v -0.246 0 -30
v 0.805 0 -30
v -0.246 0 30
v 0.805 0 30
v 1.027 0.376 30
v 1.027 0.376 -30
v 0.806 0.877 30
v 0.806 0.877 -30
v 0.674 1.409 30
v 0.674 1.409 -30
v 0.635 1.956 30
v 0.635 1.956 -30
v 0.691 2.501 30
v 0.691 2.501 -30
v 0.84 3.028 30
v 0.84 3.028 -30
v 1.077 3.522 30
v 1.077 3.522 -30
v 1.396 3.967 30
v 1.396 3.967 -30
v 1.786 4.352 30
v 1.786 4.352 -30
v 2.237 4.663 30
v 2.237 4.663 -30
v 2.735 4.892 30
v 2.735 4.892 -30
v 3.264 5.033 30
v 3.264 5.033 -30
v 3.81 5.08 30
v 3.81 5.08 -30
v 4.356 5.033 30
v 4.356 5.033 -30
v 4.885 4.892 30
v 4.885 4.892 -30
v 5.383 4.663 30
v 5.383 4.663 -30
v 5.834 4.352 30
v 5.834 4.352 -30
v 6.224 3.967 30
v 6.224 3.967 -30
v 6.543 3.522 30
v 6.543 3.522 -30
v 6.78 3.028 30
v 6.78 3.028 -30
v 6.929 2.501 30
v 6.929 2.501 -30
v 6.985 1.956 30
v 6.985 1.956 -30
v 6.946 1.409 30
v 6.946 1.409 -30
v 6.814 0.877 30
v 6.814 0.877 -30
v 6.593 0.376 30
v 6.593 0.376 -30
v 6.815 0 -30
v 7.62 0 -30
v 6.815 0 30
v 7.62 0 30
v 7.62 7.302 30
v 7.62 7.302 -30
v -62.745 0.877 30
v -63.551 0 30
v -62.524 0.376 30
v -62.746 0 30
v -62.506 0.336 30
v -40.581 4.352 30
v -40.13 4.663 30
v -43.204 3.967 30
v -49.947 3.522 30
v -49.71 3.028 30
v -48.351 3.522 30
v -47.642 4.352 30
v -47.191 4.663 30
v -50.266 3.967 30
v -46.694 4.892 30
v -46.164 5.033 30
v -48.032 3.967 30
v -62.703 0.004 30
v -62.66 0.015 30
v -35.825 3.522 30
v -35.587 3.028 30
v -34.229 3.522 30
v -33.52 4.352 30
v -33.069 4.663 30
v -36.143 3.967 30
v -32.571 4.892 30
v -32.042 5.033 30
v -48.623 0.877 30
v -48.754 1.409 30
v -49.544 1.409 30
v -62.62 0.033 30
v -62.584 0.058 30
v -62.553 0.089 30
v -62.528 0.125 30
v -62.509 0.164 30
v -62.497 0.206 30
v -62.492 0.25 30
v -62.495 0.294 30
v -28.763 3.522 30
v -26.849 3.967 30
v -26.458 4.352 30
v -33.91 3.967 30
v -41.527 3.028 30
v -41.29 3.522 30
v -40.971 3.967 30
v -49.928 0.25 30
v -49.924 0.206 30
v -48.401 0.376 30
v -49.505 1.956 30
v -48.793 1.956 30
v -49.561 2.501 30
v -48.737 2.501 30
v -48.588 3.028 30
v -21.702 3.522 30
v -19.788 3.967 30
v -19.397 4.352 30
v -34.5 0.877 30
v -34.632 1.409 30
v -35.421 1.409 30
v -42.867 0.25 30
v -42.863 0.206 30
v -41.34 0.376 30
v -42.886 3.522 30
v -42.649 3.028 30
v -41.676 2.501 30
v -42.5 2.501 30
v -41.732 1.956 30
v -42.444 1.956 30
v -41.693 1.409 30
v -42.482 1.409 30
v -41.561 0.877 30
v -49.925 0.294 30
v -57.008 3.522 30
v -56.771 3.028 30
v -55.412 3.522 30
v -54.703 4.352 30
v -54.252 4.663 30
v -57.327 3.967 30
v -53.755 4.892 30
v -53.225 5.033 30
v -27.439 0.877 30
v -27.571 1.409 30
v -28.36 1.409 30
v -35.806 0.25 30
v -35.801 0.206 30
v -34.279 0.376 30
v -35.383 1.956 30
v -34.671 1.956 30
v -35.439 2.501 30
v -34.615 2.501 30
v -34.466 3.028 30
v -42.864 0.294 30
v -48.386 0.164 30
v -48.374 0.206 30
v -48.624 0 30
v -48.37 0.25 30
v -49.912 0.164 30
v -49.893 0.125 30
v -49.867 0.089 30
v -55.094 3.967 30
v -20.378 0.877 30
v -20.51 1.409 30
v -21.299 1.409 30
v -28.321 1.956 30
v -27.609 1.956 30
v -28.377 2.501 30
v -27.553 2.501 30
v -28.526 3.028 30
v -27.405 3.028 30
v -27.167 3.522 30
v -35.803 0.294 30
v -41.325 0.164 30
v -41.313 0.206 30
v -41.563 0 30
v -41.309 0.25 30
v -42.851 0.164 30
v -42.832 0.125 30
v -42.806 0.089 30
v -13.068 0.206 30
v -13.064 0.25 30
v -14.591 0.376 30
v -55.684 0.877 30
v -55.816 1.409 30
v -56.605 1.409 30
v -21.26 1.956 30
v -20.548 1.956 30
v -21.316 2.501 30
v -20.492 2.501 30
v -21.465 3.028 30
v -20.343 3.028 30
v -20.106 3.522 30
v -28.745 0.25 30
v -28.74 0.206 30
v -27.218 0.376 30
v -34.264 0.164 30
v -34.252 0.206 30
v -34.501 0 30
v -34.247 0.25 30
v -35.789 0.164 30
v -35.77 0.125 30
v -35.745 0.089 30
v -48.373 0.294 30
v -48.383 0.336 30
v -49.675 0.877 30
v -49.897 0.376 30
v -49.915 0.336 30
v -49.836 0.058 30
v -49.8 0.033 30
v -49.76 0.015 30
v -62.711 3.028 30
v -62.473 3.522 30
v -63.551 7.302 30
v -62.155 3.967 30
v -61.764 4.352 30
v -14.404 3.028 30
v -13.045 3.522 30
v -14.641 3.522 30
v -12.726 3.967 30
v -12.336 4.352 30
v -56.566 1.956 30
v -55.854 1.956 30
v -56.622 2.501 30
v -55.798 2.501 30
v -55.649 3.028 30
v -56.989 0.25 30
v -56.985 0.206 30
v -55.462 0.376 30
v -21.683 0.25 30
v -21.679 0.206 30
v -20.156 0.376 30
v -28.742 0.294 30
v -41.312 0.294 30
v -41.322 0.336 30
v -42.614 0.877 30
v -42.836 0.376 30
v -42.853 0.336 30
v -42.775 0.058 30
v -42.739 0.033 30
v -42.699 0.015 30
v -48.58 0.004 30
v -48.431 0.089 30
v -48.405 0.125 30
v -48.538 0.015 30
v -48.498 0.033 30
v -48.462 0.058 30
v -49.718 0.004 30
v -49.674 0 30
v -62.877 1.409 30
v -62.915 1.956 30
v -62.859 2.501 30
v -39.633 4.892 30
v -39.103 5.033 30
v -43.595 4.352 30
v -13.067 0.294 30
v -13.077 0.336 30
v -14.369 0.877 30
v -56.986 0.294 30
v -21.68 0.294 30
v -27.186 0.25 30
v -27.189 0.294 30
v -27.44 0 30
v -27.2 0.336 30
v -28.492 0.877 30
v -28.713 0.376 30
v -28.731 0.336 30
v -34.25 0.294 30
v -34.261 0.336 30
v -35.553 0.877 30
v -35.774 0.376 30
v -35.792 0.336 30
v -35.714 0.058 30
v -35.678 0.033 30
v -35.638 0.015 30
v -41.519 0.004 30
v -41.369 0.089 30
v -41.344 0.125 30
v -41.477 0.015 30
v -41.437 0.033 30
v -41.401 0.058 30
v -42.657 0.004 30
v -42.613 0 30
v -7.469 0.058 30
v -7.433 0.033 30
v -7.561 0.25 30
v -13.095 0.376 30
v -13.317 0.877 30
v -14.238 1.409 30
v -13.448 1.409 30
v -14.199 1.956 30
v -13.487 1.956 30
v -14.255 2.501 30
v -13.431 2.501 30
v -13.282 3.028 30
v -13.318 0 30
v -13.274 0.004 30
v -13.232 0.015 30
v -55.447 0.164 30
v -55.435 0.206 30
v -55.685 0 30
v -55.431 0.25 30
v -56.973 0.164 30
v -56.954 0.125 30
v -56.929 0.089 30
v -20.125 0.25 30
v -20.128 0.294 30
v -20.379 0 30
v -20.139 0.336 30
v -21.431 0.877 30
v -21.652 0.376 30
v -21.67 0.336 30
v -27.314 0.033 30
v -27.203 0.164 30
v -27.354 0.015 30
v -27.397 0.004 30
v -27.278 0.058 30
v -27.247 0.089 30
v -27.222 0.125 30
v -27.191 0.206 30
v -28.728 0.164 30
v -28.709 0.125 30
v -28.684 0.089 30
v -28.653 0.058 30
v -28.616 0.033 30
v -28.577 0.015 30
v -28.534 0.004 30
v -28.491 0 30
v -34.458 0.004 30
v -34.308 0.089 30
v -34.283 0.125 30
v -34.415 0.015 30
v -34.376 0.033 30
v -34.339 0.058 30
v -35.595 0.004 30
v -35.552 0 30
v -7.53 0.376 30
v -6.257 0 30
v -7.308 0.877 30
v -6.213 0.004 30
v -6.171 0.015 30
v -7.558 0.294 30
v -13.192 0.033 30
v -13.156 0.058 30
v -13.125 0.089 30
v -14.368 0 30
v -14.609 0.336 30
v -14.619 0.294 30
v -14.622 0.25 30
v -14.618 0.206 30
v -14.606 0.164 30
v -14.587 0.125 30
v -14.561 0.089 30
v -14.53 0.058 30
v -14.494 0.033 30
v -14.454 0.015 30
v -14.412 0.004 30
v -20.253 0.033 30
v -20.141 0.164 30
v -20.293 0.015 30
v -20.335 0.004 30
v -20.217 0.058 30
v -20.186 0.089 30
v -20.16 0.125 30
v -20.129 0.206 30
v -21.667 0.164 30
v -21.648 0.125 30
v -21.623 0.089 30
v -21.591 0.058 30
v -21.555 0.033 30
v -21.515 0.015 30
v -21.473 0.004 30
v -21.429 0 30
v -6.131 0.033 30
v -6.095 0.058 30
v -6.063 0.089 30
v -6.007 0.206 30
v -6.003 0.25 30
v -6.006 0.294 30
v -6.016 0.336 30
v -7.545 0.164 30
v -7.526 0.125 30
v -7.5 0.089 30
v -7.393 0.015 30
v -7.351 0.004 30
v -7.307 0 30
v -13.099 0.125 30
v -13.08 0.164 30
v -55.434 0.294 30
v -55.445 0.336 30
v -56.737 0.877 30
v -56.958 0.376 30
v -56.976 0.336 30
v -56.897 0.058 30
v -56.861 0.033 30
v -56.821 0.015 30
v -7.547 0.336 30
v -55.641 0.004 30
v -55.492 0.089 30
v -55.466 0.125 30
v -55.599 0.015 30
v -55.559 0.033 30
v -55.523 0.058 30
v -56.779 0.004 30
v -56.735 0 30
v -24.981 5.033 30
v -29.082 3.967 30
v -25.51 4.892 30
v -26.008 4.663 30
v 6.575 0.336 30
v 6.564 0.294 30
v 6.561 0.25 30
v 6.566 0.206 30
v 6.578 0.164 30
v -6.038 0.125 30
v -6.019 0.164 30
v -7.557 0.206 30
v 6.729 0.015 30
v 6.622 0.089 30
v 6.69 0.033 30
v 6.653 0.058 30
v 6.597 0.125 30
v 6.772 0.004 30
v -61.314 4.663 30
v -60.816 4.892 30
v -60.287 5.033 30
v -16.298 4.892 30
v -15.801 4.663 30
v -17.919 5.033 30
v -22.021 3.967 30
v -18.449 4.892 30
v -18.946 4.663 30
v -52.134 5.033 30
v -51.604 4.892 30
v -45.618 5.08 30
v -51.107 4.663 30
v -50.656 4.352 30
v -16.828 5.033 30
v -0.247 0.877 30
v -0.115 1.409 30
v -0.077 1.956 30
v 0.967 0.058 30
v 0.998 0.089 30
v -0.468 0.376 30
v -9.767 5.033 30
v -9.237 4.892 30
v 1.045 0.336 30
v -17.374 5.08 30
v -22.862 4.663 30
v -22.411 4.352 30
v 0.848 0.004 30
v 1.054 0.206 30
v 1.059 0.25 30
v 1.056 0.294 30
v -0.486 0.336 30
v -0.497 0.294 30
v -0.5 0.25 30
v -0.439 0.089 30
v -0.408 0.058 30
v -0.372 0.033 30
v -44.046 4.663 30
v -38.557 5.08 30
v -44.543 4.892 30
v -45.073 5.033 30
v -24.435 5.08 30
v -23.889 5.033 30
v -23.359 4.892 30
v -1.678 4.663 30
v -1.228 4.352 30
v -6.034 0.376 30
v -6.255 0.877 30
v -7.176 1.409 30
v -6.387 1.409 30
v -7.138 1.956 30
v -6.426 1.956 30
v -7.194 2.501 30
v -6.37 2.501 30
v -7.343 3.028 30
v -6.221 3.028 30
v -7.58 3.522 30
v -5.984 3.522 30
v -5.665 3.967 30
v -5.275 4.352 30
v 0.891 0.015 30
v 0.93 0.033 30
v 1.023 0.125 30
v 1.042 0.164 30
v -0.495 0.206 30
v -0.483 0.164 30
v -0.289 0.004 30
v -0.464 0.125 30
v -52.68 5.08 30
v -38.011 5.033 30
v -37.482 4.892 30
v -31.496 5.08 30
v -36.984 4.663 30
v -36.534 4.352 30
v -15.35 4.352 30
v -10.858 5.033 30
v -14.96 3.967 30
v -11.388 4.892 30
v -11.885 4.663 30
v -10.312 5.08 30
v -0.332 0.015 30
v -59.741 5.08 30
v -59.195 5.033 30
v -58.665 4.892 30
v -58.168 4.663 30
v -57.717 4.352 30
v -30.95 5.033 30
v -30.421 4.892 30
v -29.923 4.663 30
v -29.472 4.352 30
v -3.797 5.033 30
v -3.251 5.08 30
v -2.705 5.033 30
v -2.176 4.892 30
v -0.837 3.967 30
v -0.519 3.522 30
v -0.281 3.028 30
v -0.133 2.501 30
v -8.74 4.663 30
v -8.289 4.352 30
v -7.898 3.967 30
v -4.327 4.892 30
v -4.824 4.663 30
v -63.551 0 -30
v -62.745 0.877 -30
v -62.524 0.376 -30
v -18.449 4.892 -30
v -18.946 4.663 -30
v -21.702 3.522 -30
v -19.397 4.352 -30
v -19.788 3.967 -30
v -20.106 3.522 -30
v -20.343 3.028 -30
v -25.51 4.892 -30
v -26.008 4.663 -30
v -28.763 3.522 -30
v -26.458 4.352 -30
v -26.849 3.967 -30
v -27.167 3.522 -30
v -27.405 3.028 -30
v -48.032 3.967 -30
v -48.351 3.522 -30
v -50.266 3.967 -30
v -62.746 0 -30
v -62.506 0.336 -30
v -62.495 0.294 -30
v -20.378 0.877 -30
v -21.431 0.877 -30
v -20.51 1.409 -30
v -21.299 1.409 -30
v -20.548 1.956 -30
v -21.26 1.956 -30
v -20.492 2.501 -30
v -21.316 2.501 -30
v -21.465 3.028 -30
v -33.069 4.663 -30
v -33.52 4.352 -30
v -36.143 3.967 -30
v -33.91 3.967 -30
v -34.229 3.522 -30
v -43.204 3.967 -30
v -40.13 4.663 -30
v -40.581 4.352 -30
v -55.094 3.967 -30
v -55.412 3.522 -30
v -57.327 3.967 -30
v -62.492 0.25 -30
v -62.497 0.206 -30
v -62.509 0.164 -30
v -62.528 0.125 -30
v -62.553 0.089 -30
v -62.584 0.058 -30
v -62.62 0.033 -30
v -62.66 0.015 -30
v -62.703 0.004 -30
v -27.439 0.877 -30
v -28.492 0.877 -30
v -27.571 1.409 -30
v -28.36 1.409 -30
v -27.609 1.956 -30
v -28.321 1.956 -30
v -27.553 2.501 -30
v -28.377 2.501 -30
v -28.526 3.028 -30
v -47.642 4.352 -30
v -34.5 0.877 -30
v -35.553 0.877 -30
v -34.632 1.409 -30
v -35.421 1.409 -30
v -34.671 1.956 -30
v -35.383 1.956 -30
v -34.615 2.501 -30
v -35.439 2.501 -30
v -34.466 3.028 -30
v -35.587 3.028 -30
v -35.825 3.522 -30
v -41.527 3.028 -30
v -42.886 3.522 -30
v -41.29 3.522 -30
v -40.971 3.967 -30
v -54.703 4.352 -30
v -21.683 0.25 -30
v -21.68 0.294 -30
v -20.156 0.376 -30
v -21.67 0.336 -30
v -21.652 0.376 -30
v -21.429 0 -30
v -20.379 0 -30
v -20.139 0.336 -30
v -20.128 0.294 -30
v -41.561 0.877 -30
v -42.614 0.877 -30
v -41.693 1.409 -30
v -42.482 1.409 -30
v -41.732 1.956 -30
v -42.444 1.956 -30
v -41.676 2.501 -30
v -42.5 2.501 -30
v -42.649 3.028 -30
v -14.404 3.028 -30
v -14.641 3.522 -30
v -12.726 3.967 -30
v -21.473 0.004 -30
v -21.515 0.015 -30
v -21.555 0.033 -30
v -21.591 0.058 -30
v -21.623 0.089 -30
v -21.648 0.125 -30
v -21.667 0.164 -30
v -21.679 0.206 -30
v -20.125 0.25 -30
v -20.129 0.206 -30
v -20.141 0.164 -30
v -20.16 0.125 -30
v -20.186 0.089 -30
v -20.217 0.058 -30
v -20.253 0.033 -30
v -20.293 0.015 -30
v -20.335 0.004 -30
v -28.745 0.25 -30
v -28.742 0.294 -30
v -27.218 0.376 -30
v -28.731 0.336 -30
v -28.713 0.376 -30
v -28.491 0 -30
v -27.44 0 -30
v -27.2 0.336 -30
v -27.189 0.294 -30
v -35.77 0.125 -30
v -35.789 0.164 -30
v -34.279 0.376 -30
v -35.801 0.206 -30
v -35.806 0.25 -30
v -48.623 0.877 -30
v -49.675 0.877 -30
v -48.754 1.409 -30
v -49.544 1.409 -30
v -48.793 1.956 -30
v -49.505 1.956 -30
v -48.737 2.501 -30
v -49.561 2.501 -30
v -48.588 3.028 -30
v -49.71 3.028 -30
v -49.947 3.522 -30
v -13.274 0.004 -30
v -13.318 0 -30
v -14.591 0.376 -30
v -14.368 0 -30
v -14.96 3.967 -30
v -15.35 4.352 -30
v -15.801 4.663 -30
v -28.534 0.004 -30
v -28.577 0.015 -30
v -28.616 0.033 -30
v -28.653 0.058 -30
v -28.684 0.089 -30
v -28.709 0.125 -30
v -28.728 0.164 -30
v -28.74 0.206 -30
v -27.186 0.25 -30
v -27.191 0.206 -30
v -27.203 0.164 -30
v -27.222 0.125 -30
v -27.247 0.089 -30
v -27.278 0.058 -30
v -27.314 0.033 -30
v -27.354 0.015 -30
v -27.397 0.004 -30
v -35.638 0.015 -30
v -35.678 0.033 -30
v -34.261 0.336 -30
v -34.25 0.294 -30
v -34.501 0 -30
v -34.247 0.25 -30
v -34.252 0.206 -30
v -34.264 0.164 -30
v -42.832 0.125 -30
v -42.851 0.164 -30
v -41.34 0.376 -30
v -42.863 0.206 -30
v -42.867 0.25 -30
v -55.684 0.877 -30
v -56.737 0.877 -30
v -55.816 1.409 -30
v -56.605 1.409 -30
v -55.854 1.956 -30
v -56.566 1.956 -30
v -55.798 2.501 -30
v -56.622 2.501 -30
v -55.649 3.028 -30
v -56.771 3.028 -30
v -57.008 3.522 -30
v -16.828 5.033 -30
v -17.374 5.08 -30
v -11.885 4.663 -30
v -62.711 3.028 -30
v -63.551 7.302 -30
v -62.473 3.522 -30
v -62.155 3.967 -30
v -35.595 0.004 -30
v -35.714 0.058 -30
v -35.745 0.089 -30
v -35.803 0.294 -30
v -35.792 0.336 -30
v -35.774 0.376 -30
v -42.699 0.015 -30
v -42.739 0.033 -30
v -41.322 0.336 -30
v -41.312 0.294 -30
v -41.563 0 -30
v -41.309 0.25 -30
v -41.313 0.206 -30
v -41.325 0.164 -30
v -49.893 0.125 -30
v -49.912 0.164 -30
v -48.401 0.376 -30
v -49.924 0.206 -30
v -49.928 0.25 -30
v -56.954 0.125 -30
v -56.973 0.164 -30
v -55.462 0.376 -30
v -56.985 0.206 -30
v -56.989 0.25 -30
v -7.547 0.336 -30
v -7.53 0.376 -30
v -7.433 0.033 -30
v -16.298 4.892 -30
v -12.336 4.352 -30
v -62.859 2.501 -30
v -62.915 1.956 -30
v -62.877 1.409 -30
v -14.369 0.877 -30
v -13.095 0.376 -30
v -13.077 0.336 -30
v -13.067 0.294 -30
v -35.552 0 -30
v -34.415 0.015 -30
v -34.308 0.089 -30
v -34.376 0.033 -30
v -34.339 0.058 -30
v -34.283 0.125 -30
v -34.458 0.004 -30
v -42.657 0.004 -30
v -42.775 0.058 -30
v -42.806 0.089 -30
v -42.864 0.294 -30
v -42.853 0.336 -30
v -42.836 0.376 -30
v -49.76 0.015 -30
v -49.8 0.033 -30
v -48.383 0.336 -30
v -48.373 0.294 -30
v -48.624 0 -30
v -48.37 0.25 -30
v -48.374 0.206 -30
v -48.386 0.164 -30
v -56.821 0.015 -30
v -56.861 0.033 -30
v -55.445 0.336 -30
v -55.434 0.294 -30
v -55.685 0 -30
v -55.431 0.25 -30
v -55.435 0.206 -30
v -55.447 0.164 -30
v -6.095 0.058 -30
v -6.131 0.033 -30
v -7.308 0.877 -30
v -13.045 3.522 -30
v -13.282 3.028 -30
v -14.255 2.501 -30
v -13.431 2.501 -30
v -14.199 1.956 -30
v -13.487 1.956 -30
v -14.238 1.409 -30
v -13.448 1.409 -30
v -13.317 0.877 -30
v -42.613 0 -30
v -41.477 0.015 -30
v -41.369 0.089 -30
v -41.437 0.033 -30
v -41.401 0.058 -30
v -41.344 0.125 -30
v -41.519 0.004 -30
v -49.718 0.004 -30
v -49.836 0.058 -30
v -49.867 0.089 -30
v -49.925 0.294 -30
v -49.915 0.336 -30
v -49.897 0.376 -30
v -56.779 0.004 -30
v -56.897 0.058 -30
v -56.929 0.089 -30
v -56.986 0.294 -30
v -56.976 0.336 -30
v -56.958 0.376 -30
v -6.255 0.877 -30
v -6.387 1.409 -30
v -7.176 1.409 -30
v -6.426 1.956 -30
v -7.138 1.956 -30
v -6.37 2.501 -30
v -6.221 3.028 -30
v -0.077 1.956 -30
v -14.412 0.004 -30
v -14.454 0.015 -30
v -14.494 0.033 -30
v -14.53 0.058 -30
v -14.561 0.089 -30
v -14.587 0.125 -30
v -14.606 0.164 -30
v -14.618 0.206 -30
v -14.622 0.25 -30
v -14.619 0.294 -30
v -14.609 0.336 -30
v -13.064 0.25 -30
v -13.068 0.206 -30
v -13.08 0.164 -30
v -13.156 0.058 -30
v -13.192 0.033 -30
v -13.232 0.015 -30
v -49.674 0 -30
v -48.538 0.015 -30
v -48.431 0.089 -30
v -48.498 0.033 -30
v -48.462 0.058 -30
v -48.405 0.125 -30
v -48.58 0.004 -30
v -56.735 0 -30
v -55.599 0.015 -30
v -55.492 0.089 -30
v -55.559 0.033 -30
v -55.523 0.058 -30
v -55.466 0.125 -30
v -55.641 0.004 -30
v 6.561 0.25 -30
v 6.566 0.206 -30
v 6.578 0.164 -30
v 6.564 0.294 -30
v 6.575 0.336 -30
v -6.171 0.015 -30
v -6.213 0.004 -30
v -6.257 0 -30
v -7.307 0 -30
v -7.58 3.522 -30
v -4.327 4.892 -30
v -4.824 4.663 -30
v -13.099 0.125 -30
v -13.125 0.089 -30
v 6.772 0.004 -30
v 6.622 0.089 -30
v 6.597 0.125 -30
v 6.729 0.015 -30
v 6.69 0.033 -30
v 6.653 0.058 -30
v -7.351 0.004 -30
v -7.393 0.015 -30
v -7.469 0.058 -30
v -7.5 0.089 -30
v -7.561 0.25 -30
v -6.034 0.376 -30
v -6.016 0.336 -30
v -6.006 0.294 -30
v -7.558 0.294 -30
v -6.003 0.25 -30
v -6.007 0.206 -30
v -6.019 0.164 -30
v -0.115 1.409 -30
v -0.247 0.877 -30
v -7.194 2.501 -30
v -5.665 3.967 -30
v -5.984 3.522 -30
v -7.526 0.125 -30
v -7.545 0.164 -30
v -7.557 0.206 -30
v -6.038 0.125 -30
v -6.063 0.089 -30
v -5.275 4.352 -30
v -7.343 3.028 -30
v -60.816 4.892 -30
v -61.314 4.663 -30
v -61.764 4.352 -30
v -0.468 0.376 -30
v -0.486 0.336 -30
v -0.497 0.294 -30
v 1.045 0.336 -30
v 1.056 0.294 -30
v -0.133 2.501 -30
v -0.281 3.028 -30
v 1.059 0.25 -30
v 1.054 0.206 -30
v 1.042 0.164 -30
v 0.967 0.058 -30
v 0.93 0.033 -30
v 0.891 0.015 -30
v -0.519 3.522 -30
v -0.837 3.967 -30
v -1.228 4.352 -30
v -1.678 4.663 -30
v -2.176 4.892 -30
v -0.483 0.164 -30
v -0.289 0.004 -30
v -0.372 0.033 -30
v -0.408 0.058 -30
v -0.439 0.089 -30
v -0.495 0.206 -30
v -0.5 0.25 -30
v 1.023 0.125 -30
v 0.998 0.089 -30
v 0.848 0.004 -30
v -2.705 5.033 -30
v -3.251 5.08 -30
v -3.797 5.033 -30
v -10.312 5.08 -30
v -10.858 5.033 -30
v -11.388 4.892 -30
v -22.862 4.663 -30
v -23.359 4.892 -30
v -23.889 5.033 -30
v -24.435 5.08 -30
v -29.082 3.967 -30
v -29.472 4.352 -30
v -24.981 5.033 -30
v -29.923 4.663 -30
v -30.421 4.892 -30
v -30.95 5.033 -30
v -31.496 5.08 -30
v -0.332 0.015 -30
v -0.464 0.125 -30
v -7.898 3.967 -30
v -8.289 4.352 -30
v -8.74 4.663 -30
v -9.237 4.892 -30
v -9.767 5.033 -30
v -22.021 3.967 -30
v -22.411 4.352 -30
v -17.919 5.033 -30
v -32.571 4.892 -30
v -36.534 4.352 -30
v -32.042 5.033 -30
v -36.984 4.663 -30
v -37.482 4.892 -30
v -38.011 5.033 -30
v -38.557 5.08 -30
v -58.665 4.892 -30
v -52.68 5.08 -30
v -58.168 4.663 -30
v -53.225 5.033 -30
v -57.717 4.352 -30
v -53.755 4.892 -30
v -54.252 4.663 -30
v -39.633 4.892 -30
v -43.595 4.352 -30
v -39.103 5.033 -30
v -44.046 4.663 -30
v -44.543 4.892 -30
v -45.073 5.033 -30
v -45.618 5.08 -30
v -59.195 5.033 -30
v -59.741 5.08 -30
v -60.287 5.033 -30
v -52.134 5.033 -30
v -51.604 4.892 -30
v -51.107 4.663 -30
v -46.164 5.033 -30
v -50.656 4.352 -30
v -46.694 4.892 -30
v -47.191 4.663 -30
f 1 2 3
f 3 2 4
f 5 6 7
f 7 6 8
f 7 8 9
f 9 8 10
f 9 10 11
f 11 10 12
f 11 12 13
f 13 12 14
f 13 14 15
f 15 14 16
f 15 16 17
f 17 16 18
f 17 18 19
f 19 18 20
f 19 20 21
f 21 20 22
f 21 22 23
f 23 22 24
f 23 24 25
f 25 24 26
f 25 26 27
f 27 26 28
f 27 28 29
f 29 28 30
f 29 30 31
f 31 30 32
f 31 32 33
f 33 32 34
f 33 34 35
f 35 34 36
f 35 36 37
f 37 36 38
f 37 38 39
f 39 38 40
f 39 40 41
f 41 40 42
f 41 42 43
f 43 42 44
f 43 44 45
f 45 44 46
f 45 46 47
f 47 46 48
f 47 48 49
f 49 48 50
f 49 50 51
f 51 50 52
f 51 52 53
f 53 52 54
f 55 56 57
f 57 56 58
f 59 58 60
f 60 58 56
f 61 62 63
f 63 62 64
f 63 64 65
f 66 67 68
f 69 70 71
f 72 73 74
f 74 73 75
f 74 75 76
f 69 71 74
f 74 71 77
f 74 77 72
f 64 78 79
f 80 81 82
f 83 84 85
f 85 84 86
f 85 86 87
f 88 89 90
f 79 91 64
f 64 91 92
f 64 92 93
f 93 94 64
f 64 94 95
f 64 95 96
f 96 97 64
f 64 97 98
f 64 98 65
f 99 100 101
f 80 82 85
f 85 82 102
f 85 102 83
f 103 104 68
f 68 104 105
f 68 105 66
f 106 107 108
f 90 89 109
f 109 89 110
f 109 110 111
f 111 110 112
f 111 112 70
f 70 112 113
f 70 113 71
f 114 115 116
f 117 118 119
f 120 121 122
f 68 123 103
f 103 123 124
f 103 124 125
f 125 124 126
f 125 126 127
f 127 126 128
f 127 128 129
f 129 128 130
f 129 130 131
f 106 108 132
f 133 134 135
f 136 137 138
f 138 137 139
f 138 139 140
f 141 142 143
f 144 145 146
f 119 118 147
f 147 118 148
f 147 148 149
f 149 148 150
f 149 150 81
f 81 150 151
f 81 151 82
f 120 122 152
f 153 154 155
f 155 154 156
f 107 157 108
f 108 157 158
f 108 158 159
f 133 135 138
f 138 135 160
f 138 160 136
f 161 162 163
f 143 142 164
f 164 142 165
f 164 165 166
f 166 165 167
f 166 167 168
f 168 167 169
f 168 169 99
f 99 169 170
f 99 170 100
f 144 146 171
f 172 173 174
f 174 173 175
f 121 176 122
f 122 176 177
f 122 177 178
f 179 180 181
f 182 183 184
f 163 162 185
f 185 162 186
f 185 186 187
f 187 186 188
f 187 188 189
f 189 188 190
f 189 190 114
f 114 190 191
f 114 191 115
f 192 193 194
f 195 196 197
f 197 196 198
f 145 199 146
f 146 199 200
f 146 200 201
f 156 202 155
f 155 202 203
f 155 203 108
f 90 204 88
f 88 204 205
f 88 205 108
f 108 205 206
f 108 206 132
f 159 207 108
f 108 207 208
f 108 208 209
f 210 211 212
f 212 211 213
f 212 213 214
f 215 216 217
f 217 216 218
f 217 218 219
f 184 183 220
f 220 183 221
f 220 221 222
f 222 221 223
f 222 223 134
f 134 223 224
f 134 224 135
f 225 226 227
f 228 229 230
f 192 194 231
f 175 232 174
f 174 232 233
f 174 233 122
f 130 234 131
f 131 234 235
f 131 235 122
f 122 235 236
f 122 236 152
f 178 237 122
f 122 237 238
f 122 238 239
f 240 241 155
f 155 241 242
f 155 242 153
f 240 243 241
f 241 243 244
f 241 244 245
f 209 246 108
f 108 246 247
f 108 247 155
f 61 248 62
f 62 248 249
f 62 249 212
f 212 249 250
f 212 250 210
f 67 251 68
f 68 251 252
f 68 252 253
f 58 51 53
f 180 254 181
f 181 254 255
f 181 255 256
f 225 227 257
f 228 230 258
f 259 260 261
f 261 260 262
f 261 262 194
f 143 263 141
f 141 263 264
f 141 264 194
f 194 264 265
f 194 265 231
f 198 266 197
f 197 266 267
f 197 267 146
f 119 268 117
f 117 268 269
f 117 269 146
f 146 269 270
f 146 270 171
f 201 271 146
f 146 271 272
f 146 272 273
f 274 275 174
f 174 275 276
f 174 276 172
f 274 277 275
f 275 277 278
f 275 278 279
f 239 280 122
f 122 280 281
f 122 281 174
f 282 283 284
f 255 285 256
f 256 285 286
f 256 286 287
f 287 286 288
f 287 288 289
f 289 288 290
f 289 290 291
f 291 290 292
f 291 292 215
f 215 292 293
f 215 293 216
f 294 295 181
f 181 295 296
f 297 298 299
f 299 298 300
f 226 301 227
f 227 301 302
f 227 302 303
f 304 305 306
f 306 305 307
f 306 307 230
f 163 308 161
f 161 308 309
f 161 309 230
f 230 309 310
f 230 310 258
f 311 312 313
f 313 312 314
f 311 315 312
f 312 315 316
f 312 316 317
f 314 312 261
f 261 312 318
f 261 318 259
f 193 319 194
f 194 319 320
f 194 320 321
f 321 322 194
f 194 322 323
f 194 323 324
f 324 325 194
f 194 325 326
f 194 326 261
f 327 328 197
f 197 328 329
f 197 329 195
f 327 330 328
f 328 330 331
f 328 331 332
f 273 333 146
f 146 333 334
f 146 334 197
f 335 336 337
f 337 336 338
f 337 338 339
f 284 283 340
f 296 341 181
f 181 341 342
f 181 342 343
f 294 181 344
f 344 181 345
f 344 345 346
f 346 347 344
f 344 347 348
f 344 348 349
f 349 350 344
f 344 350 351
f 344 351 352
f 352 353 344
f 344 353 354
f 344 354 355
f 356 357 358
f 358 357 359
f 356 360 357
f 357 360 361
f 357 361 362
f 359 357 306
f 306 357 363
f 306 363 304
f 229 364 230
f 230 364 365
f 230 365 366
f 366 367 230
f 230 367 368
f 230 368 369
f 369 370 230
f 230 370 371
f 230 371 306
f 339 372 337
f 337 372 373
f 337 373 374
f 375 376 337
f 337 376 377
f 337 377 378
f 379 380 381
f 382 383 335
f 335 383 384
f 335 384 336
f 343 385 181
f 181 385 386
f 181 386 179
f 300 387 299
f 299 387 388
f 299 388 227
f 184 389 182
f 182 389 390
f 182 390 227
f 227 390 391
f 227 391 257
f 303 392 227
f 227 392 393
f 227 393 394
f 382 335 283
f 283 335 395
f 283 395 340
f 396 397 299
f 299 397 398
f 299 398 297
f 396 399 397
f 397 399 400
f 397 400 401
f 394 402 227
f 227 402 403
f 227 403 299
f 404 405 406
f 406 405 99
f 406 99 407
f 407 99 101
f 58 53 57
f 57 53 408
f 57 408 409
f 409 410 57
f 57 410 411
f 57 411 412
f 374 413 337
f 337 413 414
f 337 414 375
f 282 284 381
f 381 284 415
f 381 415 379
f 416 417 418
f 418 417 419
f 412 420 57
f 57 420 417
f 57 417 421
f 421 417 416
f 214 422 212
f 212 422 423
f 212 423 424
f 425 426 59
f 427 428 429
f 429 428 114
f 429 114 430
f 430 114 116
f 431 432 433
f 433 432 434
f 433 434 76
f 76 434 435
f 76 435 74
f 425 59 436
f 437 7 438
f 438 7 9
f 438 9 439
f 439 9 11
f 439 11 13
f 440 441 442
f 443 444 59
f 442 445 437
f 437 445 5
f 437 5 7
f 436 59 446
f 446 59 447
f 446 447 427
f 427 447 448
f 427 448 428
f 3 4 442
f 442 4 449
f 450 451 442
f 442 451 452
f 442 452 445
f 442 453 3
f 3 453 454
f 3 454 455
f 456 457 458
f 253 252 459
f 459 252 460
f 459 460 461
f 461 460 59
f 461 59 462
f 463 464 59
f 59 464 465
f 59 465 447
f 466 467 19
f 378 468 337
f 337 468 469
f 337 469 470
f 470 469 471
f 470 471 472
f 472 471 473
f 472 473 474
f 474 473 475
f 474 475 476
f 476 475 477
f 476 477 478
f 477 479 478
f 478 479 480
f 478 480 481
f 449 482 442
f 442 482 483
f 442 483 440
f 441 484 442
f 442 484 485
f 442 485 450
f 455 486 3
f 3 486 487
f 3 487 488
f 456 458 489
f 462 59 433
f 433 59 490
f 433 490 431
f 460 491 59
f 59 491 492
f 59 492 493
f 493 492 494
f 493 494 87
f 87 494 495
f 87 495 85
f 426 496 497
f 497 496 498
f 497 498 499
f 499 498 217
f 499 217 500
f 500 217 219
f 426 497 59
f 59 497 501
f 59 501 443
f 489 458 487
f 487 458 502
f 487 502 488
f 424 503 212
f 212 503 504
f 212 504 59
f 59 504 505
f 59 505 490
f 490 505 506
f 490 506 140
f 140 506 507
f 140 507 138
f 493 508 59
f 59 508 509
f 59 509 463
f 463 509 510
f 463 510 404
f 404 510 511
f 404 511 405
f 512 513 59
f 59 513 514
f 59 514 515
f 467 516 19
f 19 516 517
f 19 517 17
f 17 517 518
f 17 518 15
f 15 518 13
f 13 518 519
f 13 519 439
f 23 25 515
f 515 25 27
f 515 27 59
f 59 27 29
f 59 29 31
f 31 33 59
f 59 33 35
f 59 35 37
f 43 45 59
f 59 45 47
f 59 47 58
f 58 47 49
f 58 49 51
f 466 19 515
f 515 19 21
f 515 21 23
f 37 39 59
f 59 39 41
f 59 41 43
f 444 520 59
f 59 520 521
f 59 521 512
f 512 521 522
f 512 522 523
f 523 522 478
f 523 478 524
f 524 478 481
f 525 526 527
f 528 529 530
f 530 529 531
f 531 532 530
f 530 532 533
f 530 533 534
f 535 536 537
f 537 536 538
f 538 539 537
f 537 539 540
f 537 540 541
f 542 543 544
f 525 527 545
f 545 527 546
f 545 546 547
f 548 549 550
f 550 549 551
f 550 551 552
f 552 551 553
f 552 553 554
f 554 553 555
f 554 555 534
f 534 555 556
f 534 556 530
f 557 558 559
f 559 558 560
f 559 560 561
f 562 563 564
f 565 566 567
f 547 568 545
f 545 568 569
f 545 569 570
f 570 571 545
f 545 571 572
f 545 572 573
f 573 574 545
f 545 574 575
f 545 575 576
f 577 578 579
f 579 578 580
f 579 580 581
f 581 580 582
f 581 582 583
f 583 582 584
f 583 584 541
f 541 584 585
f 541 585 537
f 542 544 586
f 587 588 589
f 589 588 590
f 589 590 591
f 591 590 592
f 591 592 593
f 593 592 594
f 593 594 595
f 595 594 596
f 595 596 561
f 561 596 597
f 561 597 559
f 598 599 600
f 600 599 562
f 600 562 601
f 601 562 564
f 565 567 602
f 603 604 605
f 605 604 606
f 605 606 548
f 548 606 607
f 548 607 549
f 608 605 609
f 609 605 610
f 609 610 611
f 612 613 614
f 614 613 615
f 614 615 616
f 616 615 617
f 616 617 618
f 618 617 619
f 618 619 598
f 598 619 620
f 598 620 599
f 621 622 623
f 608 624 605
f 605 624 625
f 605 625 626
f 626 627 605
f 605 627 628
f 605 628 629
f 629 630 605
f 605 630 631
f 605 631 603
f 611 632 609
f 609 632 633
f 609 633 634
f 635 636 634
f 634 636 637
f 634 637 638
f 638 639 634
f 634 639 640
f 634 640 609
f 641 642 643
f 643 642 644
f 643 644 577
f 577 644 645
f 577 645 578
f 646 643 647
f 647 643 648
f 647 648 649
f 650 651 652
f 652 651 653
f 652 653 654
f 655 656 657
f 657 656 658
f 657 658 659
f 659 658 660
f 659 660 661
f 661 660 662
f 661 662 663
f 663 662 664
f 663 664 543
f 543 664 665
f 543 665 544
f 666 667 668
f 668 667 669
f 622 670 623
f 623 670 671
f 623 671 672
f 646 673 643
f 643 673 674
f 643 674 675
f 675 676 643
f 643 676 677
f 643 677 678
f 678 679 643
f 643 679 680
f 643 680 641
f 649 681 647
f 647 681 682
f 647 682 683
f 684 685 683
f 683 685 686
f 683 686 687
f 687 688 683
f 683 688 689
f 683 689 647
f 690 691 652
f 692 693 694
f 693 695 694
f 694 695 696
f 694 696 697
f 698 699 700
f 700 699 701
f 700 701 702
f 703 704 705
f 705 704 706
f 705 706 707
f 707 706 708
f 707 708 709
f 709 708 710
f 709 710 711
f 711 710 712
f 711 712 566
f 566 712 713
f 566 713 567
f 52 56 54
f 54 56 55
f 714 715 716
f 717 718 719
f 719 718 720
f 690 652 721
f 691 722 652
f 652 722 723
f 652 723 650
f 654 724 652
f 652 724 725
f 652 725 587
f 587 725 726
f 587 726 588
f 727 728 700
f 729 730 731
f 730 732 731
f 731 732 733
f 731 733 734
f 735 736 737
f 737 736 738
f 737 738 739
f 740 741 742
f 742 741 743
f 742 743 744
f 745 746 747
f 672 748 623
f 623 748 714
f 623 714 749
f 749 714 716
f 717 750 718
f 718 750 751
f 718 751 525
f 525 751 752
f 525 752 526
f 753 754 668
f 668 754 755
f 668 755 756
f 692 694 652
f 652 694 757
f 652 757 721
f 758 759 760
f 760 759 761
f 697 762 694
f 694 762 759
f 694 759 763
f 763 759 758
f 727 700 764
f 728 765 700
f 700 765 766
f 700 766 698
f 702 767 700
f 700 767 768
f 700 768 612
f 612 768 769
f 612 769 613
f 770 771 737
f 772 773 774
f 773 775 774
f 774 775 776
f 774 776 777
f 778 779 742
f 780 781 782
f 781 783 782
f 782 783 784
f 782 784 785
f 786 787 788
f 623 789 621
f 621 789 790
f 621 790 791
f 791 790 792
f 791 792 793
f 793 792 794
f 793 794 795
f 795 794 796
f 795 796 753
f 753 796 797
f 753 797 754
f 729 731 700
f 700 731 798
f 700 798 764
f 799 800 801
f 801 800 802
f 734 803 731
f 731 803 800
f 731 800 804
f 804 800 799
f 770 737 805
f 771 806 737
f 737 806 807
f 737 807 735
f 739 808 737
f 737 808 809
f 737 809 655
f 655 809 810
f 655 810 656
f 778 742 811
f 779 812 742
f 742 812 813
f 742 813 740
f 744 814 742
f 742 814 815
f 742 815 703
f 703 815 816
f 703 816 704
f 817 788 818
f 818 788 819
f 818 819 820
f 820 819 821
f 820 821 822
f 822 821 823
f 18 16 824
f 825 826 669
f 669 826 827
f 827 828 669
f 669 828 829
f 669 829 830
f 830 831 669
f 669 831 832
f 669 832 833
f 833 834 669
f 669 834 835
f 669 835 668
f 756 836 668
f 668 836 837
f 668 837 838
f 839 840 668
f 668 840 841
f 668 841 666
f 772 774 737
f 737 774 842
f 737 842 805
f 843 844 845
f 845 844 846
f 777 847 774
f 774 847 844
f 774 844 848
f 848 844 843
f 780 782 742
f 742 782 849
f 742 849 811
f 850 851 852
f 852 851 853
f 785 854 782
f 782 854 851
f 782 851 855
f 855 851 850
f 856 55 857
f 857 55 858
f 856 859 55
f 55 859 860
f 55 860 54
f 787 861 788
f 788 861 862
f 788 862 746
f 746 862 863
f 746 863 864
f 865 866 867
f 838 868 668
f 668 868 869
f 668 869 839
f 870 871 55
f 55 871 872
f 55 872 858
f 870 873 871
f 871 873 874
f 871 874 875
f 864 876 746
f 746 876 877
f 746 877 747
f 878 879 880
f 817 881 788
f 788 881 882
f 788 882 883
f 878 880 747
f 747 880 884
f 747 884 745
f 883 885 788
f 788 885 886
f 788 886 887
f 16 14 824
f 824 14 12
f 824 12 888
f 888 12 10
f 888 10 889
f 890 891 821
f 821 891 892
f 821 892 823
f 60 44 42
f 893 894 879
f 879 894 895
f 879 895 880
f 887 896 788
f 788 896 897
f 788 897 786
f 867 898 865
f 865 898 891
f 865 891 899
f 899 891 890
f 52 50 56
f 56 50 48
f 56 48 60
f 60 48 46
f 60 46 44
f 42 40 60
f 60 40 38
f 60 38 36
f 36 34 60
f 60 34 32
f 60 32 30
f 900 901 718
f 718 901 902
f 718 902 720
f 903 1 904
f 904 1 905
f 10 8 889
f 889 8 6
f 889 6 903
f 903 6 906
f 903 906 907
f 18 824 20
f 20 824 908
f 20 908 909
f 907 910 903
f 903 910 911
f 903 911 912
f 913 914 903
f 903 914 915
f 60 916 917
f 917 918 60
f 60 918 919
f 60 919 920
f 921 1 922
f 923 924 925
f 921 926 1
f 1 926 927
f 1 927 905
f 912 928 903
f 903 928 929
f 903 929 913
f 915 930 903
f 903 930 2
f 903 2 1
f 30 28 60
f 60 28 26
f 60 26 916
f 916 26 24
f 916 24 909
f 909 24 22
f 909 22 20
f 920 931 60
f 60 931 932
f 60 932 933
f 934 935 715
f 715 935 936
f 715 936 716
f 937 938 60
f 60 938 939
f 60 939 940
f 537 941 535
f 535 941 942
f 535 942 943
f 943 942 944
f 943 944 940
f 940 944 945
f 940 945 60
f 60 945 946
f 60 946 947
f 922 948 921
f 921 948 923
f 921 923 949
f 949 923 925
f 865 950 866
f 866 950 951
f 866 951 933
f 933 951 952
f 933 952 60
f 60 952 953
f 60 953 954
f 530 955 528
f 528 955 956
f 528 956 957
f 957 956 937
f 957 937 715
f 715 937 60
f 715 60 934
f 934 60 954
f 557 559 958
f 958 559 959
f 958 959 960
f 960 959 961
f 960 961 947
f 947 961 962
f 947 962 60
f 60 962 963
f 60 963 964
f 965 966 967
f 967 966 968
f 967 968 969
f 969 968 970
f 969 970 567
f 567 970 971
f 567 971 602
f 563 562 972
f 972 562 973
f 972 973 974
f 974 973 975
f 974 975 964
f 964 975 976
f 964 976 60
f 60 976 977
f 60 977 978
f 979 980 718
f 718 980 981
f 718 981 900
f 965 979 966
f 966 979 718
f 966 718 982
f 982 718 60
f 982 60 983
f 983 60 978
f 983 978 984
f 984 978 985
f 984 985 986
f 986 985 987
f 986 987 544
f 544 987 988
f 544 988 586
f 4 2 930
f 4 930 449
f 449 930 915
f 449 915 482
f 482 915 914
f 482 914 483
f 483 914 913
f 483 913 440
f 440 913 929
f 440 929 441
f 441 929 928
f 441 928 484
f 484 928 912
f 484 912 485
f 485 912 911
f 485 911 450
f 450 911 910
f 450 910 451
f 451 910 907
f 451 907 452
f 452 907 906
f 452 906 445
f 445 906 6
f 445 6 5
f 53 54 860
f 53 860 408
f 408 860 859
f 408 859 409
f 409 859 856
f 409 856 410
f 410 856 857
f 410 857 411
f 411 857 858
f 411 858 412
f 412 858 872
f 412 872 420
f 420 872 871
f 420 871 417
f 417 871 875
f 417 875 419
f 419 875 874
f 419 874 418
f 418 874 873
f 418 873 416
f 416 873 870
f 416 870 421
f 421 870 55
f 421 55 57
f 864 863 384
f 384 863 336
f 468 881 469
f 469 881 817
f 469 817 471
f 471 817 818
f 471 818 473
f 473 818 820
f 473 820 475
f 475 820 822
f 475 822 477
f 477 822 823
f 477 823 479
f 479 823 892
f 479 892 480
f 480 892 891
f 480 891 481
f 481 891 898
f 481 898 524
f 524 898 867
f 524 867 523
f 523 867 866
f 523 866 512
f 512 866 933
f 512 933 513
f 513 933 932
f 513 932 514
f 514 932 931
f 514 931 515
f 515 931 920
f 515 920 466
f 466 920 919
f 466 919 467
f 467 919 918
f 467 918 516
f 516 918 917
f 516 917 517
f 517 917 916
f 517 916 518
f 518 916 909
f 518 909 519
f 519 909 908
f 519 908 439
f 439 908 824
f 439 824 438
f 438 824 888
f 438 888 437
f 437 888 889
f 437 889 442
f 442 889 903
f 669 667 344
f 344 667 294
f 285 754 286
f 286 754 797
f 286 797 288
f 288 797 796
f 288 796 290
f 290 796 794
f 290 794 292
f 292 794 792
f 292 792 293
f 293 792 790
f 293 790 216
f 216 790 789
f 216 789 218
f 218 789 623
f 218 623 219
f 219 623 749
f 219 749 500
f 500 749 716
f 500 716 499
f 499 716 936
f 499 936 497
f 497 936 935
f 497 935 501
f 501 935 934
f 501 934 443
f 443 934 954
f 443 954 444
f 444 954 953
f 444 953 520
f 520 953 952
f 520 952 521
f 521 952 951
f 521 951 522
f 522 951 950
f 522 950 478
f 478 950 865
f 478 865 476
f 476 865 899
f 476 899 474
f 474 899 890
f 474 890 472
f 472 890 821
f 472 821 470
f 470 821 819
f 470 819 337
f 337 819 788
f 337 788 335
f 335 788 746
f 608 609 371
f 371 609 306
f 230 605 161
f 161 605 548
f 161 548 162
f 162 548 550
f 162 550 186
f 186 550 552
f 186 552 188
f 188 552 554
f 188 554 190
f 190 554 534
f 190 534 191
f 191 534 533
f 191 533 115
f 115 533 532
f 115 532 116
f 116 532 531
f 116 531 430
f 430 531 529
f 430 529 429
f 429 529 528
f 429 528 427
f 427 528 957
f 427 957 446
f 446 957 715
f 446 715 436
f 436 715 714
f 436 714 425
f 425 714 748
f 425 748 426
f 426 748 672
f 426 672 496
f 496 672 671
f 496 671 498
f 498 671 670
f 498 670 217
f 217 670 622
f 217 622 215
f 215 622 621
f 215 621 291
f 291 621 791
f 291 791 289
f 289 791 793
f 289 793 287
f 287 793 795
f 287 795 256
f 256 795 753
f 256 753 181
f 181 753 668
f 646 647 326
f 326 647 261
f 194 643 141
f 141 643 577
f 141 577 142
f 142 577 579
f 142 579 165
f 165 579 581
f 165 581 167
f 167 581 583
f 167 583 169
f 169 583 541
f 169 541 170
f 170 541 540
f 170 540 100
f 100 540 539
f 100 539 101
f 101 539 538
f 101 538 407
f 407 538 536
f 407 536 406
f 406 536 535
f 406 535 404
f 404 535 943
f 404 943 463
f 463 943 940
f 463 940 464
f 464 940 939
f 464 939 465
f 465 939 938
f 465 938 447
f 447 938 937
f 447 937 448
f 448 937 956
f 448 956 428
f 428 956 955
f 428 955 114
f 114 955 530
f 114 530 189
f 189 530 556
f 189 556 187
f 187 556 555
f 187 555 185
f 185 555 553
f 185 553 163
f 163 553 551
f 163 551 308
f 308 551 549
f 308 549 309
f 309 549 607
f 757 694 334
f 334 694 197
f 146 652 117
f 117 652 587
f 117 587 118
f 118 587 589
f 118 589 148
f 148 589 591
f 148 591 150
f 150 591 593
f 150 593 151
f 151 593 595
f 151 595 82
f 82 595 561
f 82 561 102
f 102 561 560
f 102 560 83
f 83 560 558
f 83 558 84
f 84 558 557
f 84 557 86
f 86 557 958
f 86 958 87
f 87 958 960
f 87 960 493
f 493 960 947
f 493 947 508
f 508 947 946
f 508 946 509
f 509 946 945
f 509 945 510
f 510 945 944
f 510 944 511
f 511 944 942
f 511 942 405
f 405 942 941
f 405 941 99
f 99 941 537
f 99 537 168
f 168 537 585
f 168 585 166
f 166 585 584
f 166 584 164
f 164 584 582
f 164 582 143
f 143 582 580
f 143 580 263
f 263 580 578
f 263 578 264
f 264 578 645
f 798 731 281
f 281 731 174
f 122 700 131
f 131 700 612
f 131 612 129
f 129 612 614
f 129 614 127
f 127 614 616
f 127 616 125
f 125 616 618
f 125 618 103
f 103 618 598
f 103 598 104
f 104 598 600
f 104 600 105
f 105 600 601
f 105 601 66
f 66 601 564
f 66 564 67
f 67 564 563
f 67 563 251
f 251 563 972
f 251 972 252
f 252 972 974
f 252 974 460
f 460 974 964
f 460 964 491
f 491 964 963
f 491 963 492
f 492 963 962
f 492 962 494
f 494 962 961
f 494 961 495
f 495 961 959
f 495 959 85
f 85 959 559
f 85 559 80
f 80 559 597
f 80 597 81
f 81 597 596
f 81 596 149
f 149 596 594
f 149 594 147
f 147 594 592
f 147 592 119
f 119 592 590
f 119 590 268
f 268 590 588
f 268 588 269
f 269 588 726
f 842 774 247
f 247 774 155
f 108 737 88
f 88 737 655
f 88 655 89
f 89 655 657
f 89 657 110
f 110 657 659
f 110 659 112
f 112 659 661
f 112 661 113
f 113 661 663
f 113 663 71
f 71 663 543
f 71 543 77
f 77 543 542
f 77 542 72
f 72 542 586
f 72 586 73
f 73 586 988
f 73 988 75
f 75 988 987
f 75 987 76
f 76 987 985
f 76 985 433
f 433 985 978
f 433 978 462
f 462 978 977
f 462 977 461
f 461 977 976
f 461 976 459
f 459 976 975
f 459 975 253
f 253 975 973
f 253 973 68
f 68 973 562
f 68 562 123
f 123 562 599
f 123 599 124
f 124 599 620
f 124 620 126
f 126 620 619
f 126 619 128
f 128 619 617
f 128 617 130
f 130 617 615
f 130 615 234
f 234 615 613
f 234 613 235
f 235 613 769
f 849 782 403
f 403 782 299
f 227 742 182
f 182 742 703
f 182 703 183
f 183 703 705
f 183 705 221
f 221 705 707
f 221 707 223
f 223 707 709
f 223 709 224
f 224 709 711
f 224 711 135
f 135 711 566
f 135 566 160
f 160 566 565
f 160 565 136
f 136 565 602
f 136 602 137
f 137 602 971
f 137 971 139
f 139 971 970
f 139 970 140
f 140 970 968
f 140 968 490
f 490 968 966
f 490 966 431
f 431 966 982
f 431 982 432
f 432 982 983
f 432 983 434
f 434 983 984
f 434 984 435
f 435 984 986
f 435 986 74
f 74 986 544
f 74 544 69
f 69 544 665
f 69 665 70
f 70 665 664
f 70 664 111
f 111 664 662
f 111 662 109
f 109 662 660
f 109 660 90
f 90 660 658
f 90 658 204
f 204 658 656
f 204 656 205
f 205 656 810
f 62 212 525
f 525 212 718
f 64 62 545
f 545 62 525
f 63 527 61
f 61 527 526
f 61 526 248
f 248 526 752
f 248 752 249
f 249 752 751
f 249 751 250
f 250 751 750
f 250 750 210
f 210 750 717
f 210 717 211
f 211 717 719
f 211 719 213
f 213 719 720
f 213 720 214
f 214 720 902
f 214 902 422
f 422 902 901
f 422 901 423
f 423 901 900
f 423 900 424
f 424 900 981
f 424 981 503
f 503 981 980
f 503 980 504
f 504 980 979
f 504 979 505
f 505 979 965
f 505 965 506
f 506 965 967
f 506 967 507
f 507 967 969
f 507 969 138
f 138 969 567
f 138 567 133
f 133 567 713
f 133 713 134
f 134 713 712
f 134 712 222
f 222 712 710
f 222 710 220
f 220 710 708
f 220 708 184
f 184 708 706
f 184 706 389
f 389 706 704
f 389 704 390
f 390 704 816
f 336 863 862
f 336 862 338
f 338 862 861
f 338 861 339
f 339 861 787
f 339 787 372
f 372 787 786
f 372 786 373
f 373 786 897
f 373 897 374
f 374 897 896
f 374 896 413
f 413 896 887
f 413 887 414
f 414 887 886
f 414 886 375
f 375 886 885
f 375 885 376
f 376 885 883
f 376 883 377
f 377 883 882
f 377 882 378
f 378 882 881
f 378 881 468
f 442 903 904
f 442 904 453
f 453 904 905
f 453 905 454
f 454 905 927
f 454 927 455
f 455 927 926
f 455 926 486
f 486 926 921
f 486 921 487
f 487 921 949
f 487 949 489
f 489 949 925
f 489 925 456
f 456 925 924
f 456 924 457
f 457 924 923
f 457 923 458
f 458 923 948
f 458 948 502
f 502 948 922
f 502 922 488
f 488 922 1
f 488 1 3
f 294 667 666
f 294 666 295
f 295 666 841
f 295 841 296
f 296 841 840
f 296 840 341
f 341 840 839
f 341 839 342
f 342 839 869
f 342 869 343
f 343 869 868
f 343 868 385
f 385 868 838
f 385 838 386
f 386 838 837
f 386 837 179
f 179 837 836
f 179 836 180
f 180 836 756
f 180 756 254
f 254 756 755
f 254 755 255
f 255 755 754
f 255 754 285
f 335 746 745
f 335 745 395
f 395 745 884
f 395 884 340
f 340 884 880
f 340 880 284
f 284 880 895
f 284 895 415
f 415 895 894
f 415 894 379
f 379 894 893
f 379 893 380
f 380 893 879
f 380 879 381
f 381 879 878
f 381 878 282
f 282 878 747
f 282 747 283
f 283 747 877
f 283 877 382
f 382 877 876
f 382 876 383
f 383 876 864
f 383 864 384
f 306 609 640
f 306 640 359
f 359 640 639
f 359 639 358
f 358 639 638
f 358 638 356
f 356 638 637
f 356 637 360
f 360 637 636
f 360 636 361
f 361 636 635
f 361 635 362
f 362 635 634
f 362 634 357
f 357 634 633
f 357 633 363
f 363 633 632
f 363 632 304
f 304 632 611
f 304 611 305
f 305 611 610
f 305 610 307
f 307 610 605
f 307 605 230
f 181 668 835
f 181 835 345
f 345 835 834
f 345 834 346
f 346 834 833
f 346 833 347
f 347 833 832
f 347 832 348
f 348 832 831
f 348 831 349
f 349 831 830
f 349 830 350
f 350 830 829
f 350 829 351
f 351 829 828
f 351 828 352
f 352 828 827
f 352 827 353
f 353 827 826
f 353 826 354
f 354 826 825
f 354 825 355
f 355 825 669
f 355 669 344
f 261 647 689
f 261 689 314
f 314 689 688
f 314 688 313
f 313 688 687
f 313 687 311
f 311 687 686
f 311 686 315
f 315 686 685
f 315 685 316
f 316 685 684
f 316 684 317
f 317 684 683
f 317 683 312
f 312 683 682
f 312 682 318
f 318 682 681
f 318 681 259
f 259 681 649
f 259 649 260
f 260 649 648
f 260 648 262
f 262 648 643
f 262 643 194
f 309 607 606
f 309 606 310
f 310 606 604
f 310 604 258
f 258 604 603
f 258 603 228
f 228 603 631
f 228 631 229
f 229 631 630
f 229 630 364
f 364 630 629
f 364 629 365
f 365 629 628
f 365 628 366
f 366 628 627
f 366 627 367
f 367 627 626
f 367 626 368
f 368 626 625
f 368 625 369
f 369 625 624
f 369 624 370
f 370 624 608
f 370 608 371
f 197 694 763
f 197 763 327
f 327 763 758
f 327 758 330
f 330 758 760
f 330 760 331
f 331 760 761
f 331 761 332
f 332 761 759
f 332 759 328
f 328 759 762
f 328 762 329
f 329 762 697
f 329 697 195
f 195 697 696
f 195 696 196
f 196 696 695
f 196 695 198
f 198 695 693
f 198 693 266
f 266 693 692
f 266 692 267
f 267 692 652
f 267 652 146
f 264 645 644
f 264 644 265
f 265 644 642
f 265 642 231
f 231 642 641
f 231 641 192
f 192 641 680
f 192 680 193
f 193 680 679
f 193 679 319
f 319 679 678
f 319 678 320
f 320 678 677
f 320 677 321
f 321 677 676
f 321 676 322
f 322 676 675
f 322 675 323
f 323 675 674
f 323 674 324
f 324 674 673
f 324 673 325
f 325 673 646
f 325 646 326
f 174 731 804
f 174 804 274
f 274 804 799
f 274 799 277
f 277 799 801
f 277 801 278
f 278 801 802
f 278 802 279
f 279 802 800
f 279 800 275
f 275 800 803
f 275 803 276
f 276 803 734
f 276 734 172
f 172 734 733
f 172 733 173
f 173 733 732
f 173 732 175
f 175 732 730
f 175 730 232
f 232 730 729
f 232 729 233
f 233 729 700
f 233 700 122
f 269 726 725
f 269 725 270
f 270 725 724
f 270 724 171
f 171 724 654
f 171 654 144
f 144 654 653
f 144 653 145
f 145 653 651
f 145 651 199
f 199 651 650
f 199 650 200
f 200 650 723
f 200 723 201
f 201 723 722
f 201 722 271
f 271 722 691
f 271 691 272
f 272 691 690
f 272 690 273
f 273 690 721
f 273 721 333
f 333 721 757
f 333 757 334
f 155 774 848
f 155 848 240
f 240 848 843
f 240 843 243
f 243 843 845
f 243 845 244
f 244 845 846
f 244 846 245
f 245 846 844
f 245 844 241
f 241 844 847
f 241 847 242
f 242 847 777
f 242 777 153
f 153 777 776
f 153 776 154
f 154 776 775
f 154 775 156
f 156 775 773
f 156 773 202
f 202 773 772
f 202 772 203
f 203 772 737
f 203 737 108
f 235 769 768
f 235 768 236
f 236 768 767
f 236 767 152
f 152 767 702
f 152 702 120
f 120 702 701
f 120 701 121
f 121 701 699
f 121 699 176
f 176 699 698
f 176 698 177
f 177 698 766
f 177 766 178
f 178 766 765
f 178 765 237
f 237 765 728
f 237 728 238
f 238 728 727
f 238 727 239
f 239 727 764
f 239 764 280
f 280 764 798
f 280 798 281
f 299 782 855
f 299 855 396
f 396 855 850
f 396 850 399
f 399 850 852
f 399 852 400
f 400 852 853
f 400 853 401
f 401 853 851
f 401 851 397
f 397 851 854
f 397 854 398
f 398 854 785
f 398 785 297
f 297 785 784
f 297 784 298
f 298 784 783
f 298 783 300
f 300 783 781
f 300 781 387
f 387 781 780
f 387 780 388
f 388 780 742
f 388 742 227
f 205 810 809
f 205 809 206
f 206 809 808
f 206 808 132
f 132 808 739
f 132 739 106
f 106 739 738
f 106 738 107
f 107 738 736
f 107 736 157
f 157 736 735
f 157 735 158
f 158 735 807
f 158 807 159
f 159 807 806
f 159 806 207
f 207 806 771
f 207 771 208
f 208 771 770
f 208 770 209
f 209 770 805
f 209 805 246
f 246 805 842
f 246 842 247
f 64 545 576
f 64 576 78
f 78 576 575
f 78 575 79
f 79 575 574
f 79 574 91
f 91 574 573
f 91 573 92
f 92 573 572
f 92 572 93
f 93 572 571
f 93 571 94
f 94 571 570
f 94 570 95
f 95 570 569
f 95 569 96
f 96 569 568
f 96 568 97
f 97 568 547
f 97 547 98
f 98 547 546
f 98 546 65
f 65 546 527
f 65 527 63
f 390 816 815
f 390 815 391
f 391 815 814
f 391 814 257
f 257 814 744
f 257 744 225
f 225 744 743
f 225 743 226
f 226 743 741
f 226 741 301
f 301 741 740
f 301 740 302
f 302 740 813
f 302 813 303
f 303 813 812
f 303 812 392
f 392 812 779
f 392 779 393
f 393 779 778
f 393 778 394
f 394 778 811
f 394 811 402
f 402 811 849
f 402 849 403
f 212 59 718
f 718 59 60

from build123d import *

# Parameters (mm, degrees)
BOSS_EXTRUDE1_DEPTH    = 30
FILLET1_R              = 0.254
LPATTERN1_COUNT        = 10
LPATTERN1_PITCH        = 7.0612
FILLET1_OF_LPATTERN1_R = 0.254
SKETCH4_W              = 71.1708
SKETCH4_H              = 60
BOSS_EXTRUDE2_DEPTH    = 1.5875


with BuildPart() as part:
    # Sketch1 → Boss-Extrude1 (new, symmetric)
    with BuildSketch(Plane.XY):
        with BuildLine():
            Line((0, 0), (1.27, 0))
            ThreePointArc((1.27, 0), (3.81, 5.08), (6.35, 0))
            Line((6.35, 0), (7.62, 0))
            Line((7.62, 0), (7.62, 5.715))
            Line((7.62, 5.715), (0, 5.715))
            Line((0, 5.715), (0, 0))
        make_face()
    boss_extrude1 = extrude(amount=BOSS_EXTRUDE1_DEPTH, both=True)

    # Fillet1
    fillet1_edges = [part.edges().sort_by_distance(p)[0] for p in [
        (6.35, 0, 0),
        (1.27, 0, 0),
    ]]
    fillet(fillet1_edges, radius=FILLET1_R)

    # LPattern1: Boss-Extrude1 ×10
    with Locations(*[(-i * LPATTERN1_PITCH, 0, 0) for i in range(1, LPATTERN1_COUNT)]):
        add(boss_extrude1)

    # Fillet1 of LPattern1
    fillet1_of_lpattern1_edges = [part.edges().sort_by_distance(p)[0] for p in [
        (-0.7112, 0, 0),
        (-5.7912, 0, 0),
        (-7.7724, 0, 0),
        (-12.8524, 0, 0),
        (-14.8336, 0, 0),
        (-19.9136, 0, 0),
        (-21.8948, 0, 0),
        (-26.9748, 0, 0),
        (-28.956, 0, 0),
        (-34.036, 0, 0),
        (-36.0172, 0, 0),
        (-41.0972, 0, 0),
        (-43.0784, 0, 0),
        (-48.1584, 0, 0),
        (-50.1396, 0, 0),
        (-55.2196, 0, 0),
        (-57.2008, 0, 0),
        (-62.2808, 0, 0),
    ]]
    fillet(fillet1_of_lpattern1_edges, radius=FILLET1_OF_LPATTERN1_R)

    # Sketch4 → Boss-Extrude2 (add)
    with BuildSketch(Plane(origin=(0, 5.715, 0), x_dir=(1, 0, 0), z_dir=(0, 1, 0))):
        with Locations((-27.9654, 0)):
            Rectangle(SKETCH4_W, SKETCH4_H)
    extrude(amount=BOSS_EXTRUDE2_DEPTH)


solid = part.part
